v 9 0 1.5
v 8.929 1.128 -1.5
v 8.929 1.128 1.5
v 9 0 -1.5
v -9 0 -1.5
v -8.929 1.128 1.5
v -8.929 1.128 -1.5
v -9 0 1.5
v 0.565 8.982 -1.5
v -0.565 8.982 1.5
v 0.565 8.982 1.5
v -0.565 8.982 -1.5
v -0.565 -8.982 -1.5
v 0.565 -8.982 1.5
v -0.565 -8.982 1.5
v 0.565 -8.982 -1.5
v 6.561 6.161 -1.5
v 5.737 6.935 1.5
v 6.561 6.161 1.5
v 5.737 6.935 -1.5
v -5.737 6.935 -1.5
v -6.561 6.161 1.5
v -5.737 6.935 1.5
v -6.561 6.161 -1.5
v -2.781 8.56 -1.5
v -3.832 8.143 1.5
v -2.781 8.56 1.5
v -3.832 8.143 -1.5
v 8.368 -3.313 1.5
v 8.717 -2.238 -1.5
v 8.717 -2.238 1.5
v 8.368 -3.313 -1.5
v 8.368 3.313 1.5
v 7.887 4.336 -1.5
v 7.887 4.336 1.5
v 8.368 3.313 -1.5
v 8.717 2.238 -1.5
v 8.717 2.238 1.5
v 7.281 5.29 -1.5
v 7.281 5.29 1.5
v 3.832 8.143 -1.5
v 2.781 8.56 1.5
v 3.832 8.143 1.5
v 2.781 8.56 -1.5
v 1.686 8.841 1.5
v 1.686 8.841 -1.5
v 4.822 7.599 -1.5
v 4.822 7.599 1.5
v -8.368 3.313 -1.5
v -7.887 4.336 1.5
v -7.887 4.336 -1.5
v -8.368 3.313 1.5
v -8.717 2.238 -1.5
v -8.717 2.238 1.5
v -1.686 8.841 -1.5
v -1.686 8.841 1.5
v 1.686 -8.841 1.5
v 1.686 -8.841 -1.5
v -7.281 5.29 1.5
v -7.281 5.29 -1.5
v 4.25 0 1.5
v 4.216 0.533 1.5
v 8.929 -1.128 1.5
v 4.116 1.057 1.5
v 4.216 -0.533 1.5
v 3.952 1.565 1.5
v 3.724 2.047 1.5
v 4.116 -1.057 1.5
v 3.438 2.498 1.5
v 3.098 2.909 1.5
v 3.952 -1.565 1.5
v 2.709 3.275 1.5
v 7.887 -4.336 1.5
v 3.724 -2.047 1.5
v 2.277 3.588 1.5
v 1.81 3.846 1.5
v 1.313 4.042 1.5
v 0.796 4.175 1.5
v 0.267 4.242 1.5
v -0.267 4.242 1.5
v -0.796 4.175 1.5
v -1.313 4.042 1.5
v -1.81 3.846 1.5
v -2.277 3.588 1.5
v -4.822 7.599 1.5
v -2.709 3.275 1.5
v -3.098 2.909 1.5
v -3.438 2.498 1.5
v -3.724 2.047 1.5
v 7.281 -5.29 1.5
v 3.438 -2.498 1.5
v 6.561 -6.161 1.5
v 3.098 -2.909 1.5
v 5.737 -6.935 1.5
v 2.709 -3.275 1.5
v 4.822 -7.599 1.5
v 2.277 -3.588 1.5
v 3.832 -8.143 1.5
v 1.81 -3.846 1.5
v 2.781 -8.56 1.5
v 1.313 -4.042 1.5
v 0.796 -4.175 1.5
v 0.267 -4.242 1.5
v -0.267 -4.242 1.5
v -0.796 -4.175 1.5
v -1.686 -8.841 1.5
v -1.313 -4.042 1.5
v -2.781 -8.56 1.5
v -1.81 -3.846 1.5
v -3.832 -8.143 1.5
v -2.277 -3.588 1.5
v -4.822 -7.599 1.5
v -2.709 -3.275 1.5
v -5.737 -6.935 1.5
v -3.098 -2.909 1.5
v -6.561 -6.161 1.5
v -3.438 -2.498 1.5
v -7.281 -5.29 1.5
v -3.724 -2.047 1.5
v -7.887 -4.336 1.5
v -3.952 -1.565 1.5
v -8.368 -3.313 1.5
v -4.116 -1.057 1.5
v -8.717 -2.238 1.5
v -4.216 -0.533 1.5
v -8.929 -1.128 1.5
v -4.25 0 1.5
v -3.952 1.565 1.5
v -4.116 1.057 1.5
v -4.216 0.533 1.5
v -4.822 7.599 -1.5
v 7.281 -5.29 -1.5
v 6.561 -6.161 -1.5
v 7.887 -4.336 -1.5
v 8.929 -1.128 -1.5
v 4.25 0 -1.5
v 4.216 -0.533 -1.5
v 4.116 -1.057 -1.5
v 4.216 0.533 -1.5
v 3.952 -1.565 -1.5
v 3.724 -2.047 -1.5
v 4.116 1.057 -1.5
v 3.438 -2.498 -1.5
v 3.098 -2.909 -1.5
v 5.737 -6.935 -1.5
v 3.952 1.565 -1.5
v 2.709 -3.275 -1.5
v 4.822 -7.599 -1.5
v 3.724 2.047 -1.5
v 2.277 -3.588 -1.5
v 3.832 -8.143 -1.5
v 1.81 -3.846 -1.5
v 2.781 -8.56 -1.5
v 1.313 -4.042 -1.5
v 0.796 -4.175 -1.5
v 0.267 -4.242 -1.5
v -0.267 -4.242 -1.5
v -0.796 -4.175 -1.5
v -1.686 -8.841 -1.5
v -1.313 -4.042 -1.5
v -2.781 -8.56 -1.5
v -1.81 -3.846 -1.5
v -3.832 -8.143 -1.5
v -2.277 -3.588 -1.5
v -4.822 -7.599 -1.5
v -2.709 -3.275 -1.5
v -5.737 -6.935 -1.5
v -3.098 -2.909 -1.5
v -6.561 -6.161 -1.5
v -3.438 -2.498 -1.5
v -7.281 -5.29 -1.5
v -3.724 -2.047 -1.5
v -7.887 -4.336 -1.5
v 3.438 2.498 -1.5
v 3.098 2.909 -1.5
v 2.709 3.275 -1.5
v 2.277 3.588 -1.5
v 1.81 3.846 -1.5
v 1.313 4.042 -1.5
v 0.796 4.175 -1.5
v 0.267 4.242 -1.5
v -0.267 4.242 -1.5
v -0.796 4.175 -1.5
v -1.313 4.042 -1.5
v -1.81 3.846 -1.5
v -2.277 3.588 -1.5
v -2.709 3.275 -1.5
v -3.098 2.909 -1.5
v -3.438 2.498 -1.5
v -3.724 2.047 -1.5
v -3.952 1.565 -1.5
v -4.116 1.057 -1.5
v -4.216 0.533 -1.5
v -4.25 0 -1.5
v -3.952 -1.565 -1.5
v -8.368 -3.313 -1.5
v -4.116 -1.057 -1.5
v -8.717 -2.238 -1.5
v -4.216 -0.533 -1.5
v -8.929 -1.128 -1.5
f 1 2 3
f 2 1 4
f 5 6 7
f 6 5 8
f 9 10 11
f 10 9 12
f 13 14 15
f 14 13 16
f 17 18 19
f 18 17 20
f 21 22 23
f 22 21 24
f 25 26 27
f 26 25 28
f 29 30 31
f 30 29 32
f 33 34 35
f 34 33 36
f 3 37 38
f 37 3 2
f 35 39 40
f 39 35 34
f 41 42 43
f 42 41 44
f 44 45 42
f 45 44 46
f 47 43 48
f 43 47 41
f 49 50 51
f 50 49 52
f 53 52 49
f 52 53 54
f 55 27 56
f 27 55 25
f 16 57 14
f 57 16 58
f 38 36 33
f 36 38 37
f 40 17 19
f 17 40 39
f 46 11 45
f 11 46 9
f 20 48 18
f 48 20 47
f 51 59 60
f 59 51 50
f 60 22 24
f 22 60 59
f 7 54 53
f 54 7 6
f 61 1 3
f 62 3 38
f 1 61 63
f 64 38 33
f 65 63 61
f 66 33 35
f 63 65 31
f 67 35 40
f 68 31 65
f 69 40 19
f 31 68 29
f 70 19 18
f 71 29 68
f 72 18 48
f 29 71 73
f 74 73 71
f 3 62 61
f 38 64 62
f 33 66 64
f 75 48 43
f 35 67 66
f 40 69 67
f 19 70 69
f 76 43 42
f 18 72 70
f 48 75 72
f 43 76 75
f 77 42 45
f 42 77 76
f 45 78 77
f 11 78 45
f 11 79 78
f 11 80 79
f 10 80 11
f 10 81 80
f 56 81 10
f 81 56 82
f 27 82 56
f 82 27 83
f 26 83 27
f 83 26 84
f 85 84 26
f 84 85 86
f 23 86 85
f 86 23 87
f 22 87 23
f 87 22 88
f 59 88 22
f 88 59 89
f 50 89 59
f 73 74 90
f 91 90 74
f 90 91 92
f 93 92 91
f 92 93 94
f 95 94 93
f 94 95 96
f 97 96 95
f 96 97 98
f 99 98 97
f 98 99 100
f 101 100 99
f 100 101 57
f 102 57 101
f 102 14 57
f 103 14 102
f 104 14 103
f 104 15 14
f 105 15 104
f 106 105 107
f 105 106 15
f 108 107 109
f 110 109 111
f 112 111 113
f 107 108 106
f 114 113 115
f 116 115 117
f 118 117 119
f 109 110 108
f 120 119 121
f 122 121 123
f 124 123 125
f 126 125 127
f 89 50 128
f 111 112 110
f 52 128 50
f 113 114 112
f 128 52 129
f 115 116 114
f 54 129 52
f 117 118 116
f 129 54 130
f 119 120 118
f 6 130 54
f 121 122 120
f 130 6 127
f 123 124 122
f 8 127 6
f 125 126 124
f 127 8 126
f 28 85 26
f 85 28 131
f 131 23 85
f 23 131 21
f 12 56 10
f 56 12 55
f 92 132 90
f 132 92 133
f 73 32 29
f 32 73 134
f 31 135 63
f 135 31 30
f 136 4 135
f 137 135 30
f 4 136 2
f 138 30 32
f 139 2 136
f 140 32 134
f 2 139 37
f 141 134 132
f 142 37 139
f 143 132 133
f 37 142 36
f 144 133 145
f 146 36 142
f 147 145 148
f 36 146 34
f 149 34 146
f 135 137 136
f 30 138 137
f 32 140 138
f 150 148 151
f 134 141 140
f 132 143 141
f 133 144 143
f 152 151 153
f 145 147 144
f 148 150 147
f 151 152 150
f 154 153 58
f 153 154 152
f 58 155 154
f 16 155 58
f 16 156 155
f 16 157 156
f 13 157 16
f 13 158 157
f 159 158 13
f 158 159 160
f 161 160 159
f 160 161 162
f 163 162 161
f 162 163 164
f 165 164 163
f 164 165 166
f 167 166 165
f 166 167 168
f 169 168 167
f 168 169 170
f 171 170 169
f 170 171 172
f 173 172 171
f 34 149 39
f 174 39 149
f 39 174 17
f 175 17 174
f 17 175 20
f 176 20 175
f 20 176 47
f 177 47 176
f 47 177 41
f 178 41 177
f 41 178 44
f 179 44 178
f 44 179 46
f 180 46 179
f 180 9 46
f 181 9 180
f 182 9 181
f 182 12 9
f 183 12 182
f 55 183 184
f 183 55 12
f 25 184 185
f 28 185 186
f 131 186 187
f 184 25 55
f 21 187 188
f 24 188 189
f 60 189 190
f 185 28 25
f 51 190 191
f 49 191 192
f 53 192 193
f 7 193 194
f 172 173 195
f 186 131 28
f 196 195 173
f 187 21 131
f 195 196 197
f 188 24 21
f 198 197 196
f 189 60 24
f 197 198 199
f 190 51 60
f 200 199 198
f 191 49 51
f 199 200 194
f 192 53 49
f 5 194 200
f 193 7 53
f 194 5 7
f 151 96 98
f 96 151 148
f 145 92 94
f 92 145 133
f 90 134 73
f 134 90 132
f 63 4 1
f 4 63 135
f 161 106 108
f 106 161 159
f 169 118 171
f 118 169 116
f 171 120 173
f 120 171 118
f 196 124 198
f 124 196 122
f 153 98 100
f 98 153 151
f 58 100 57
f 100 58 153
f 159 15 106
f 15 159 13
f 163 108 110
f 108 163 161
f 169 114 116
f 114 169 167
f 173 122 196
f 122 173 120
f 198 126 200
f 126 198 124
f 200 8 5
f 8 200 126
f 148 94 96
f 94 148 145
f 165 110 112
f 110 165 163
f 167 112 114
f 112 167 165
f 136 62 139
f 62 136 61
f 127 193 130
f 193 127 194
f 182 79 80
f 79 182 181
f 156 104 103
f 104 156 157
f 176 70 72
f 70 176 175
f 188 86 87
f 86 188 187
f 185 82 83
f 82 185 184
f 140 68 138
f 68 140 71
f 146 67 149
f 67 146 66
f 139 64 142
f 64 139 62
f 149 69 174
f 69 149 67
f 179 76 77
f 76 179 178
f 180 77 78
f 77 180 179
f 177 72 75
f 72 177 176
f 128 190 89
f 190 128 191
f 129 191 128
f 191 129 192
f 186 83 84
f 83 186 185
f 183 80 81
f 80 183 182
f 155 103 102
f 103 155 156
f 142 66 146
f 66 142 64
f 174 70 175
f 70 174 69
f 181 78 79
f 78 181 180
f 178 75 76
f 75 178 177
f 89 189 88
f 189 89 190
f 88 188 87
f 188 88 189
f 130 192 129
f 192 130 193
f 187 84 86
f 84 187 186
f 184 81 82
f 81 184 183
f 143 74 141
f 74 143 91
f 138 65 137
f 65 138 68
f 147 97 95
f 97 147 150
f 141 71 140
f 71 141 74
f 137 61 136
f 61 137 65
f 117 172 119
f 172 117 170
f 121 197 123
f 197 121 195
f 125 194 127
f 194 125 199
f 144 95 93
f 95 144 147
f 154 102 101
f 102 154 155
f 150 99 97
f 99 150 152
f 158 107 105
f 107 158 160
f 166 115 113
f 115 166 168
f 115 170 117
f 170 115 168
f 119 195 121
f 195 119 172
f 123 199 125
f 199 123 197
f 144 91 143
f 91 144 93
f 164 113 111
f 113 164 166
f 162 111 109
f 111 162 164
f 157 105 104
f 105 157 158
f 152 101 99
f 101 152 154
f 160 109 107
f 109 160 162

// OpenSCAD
$fn = 50;


difference() {
	union() {
		translate(v = [0, 0, -1.5000000000]) {
			cylinder(h = 3, r = 9.0000000000);
		}
	}
	union() {
		translate(v = [0, 0, -100.0000000000]) {
			cylinder(h = 200, r = 4.2500000000);
		}
	}
}
